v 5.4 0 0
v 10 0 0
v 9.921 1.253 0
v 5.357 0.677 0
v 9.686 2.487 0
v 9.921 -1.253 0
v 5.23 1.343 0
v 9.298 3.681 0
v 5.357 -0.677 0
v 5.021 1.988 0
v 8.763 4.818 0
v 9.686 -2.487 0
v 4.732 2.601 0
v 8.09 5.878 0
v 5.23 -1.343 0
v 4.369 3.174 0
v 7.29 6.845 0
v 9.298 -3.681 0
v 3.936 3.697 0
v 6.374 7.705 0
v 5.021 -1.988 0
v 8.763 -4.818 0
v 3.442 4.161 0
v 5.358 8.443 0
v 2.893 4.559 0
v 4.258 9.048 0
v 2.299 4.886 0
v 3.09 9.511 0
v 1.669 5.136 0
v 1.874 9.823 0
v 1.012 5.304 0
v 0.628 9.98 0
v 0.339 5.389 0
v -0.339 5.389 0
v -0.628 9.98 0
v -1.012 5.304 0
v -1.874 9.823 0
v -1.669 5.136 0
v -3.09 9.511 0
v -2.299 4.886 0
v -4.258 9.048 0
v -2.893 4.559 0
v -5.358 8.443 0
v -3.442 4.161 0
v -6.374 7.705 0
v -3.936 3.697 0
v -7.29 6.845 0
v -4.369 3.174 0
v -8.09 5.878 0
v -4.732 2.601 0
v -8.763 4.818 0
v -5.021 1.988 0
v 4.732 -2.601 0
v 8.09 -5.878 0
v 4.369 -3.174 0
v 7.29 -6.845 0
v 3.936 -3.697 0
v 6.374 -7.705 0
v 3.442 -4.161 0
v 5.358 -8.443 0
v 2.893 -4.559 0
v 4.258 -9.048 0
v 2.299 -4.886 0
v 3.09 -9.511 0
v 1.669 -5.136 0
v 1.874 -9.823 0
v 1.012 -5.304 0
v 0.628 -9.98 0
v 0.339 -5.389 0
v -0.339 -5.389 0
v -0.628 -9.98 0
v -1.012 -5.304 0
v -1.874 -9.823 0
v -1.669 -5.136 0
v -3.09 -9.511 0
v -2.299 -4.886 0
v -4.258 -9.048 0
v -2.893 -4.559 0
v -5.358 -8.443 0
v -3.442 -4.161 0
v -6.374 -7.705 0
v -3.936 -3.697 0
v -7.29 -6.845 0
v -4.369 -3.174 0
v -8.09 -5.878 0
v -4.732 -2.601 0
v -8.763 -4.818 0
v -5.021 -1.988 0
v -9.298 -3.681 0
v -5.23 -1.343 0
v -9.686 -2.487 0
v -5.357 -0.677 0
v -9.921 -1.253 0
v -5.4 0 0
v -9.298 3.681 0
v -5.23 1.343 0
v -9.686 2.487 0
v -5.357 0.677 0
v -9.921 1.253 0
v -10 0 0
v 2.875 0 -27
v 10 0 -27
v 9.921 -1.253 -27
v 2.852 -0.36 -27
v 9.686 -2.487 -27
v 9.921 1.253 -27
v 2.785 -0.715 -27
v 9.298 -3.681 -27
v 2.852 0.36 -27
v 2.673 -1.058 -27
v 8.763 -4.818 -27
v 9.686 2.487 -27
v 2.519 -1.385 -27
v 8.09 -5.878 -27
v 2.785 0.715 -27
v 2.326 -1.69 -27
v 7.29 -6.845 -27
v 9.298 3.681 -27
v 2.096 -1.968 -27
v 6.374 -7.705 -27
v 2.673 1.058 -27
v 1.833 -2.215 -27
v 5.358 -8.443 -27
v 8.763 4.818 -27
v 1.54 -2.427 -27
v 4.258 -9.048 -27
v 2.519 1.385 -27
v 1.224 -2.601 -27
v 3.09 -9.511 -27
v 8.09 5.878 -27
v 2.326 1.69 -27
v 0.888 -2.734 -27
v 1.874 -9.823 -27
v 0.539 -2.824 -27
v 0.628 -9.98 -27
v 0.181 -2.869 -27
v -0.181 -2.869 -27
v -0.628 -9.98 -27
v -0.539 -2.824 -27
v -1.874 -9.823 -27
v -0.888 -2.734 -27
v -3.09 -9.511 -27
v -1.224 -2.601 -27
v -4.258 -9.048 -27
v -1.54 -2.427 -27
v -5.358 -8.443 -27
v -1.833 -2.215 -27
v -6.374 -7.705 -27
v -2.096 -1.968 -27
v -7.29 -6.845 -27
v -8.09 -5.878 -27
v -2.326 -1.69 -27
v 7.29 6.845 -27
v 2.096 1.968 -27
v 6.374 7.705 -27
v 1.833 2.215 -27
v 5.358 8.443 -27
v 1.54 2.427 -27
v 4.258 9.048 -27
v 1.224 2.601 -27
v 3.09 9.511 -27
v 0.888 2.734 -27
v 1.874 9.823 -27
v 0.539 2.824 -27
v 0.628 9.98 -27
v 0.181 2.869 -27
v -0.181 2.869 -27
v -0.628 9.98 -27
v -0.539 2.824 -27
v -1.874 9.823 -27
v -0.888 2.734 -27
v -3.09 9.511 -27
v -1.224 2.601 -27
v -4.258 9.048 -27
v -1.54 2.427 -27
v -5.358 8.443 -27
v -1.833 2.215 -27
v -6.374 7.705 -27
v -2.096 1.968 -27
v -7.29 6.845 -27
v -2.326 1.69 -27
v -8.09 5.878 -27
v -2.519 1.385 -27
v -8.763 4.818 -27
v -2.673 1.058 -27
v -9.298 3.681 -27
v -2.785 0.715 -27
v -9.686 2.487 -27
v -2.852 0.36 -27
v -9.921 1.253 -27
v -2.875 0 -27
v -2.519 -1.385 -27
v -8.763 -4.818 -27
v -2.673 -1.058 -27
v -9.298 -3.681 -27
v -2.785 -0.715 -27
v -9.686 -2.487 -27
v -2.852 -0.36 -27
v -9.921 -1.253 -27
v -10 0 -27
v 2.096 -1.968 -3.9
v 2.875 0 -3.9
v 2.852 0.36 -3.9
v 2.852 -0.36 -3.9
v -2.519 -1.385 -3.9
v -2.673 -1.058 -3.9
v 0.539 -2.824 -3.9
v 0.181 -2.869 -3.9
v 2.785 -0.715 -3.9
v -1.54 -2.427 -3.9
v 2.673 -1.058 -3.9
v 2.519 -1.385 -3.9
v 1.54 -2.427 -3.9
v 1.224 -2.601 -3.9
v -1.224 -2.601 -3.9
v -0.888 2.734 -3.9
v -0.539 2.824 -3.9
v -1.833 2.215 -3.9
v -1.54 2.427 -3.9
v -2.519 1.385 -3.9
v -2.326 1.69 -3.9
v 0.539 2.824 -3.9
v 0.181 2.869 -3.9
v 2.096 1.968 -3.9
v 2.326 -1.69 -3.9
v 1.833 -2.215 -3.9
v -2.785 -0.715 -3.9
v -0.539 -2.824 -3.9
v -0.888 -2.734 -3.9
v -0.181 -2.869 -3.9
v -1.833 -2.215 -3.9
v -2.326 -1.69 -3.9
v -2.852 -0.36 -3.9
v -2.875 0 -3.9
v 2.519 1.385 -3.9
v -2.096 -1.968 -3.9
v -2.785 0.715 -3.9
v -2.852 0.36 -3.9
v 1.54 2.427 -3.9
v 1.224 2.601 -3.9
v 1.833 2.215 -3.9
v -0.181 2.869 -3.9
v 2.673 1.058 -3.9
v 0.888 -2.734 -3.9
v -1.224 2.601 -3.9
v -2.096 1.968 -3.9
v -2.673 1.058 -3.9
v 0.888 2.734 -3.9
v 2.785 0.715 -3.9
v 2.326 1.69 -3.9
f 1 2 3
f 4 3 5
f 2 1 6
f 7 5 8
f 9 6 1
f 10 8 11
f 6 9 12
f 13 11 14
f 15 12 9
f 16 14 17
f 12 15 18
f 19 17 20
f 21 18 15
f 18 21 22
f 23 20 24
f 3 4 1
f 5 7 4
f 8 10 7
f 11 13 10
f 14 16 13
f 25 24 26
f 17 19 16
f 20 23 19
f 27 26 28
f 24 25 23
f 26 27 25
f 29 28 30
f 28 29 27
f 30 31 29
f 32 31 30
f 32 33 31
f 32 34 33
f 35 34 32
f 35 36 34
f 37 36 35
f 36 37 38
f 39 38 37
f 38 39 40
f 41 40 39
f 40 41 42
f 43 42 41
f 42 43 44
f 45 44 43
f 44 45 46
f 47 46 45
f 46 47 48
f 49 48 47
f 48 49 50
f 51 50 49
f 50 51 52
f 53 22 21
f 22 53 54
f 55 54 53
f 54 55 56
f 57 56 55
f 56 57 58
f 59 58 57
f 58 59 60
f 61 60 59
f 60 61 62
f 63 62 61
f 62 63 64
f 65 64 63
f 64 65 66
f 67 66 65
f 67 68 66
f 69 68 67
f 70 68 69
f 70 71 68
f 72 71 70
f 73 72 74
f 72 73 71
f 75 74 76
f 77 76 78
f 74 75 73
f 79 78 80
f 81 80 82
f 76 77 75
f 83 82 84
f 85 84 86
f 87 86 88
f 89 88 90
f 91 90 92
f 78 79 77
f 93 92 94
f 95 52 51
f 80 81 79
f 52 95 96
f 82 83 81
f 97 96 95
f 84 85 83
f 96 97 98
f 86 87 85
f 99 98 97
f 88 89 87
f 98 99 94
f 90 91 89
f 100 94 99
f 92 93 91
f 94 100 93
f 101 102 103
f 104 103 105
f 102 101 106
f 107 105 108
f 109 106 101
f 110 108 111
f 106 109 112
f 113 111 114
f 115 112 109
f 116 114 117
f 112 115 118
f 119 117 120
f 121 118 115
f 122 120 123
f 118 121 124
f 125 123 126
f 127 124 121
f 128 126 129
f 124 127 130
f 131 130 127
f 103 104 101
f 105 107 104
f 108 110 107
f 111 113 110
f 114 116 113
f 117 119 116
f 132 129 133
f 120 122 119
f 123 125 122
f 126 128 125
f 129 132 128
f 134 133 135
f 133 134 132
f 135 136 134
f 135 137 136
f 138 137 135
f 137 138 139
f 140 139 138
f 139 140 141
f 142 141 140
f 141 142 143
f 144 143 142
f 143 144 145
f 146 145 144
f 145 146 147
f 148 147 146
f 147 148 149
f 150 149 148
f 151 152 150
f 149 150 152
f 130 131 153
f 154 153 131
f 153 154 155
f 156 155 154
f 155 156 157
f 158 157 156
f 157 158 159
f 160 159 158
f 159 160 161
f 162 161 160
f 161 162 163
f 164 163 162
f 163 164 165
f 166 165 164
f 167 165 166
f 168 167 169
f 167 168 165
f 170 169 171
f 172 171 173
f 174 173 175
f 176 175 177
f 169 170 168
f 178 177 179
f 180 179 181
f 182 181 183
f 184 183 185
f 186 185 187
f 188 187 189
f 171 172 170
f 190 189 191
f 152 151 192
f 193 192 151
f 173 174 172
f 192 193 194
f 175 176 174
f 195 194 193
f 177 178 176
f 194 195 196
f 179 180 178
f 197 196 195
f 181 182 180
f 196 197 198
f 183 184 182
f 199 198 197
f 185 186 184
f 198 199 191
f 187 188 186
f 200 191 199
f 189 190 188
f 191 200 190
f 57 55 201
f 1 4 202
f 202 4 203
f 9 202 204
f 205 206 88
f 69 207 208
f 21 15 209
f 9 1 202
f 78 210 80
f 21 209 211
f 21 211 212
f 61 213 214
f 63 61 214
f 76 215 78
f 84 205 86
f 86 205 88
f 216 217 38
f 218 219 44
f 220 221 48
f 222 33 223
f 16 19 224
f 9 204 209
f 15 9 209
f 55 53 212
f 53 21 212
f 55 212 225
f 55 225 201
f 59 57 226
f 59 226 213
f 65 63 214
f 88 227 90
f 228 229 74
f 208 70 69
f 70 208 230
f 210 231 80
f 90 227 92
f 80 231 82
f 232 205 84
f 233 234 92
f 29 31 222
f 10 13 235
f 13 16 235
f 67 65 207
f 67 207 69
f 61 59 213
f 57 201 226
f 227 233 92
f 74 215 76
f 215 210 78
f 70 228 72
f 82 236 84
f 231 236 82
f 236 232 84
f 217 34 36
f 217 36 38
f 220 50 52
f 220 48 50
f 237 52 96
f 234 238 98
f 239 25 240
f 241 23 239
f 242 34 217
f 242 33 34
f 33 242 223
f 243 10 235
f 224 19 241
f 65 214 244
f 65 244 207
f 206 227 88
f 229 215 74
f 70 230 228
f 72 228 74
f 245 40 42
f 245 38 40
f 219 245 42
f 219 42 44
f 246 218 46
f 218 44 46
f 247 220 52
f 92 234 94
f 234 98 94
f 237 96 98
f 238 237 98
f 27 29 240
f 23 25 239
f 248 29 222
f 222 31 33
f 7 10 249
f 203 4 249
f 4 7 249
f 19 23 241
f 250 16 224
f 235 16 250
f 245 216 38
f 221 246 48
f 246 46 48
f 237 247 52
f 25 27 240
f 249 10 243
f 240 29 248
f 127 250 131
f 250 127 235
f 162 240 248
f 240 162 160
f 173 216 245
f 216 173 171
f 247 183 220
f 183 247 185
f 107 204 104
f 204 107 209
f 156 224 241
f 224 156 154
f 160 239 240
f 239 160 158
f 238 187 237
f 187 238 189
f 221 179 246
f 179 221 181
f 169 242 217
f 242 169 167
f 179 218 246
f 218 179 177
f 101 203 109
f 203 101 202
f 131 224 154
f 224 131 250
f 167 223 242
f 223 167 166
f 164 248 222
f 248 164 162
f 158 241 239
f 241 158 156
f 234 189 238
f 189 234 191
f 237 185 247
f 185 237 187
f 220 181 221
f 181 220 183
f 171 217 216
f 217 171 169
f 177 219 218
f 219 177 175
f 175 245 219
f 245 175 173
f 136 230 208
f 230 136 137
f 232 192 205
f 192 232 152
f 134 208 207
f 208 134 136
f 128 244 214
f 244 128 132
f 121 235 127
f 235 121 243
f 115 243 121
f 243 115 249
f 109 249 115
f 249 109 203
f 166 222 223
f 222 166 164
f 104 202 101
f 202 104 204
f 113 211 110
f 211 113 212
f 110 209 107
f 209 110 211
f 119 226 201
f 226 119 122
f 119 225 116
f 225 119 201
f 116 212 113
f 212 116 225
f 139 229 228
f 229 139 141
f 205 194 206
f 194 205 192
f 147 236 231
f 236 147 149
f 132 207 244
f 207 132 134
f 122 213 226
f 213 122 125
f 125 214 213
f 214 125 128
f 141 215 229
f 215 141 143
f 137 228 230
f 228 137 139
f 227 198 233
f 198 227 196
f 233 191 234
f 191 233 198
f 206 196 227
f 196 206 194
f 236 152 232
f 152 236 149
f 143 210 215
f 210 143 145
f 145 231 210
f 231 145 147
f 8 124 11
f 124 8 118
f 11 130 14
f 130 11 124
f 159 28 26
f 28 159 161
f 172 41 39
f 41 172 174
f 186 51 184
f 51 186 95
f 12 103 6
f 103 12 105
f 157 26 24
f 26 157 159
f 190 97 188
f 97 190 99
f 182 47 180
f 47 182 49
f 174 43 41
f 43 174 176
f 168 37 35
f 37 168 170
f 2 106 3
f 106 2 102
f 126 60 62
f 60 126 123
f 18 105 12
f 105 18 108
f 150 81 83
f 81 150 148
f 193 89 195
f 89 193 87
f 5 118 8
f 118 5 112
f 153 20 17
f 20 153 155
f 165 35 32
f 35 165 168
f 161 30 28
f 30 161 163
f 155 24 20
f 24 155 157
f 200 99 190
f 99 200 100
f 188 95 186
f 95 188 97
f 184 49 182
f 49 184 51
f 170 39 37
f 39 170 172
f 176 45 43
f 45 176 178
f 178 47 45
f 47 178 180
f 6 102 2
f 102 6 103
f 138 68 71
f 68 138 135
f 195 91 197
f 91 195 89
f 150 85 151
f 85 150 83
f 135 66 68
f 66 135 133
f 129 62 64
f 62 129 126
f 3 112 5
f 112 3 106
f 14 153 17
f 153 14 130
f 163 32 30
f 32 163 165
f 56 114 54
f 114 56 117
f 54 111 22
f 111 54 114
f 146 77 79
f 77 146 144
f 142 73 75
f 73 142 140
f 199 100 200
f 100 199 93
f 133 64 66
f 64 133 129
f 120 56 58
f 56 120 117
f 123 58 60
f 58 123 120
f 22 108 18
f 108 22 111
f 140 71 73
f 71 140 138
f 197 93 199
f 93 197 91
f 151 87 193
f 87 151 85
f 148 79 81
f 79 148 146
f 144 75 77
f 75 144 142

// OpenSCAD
$fn = 50;


difference() {
	union() {
		translate(v = [0, 0, -27.0000000000]) {
			cylinder(h = 27, r = 10.0000000000);
		}
		cylinder(h = 0, r = 19.0000000000);
	}
	union() {
		translate(v = [0, 0, 0]) {
			rotate(a = [0, 0, 0]) {
				difference() {
					union() {
						#translate(v = [0, 0, -27.0000000000]) {
							cylinder(h = 27, r = 2.6000000000);
						}
						#translate(v = [0, 0, -3.9000000000]) {
							cylinder(h = 3.9000000000, r1 = 2.8750000000, r2 = 5.4000000000);
						}
						#translate(v = [0, 0, -27.0000000000]) {
							cylinder(h = 27, r = 2.8750000000);
						}
						#translate(v = [0, 0, -27.0000000000]) {
							cylinder(h = 27, r = 2.6000000000);
						}
					}
					union();
				}
			}
		}
	}
}
